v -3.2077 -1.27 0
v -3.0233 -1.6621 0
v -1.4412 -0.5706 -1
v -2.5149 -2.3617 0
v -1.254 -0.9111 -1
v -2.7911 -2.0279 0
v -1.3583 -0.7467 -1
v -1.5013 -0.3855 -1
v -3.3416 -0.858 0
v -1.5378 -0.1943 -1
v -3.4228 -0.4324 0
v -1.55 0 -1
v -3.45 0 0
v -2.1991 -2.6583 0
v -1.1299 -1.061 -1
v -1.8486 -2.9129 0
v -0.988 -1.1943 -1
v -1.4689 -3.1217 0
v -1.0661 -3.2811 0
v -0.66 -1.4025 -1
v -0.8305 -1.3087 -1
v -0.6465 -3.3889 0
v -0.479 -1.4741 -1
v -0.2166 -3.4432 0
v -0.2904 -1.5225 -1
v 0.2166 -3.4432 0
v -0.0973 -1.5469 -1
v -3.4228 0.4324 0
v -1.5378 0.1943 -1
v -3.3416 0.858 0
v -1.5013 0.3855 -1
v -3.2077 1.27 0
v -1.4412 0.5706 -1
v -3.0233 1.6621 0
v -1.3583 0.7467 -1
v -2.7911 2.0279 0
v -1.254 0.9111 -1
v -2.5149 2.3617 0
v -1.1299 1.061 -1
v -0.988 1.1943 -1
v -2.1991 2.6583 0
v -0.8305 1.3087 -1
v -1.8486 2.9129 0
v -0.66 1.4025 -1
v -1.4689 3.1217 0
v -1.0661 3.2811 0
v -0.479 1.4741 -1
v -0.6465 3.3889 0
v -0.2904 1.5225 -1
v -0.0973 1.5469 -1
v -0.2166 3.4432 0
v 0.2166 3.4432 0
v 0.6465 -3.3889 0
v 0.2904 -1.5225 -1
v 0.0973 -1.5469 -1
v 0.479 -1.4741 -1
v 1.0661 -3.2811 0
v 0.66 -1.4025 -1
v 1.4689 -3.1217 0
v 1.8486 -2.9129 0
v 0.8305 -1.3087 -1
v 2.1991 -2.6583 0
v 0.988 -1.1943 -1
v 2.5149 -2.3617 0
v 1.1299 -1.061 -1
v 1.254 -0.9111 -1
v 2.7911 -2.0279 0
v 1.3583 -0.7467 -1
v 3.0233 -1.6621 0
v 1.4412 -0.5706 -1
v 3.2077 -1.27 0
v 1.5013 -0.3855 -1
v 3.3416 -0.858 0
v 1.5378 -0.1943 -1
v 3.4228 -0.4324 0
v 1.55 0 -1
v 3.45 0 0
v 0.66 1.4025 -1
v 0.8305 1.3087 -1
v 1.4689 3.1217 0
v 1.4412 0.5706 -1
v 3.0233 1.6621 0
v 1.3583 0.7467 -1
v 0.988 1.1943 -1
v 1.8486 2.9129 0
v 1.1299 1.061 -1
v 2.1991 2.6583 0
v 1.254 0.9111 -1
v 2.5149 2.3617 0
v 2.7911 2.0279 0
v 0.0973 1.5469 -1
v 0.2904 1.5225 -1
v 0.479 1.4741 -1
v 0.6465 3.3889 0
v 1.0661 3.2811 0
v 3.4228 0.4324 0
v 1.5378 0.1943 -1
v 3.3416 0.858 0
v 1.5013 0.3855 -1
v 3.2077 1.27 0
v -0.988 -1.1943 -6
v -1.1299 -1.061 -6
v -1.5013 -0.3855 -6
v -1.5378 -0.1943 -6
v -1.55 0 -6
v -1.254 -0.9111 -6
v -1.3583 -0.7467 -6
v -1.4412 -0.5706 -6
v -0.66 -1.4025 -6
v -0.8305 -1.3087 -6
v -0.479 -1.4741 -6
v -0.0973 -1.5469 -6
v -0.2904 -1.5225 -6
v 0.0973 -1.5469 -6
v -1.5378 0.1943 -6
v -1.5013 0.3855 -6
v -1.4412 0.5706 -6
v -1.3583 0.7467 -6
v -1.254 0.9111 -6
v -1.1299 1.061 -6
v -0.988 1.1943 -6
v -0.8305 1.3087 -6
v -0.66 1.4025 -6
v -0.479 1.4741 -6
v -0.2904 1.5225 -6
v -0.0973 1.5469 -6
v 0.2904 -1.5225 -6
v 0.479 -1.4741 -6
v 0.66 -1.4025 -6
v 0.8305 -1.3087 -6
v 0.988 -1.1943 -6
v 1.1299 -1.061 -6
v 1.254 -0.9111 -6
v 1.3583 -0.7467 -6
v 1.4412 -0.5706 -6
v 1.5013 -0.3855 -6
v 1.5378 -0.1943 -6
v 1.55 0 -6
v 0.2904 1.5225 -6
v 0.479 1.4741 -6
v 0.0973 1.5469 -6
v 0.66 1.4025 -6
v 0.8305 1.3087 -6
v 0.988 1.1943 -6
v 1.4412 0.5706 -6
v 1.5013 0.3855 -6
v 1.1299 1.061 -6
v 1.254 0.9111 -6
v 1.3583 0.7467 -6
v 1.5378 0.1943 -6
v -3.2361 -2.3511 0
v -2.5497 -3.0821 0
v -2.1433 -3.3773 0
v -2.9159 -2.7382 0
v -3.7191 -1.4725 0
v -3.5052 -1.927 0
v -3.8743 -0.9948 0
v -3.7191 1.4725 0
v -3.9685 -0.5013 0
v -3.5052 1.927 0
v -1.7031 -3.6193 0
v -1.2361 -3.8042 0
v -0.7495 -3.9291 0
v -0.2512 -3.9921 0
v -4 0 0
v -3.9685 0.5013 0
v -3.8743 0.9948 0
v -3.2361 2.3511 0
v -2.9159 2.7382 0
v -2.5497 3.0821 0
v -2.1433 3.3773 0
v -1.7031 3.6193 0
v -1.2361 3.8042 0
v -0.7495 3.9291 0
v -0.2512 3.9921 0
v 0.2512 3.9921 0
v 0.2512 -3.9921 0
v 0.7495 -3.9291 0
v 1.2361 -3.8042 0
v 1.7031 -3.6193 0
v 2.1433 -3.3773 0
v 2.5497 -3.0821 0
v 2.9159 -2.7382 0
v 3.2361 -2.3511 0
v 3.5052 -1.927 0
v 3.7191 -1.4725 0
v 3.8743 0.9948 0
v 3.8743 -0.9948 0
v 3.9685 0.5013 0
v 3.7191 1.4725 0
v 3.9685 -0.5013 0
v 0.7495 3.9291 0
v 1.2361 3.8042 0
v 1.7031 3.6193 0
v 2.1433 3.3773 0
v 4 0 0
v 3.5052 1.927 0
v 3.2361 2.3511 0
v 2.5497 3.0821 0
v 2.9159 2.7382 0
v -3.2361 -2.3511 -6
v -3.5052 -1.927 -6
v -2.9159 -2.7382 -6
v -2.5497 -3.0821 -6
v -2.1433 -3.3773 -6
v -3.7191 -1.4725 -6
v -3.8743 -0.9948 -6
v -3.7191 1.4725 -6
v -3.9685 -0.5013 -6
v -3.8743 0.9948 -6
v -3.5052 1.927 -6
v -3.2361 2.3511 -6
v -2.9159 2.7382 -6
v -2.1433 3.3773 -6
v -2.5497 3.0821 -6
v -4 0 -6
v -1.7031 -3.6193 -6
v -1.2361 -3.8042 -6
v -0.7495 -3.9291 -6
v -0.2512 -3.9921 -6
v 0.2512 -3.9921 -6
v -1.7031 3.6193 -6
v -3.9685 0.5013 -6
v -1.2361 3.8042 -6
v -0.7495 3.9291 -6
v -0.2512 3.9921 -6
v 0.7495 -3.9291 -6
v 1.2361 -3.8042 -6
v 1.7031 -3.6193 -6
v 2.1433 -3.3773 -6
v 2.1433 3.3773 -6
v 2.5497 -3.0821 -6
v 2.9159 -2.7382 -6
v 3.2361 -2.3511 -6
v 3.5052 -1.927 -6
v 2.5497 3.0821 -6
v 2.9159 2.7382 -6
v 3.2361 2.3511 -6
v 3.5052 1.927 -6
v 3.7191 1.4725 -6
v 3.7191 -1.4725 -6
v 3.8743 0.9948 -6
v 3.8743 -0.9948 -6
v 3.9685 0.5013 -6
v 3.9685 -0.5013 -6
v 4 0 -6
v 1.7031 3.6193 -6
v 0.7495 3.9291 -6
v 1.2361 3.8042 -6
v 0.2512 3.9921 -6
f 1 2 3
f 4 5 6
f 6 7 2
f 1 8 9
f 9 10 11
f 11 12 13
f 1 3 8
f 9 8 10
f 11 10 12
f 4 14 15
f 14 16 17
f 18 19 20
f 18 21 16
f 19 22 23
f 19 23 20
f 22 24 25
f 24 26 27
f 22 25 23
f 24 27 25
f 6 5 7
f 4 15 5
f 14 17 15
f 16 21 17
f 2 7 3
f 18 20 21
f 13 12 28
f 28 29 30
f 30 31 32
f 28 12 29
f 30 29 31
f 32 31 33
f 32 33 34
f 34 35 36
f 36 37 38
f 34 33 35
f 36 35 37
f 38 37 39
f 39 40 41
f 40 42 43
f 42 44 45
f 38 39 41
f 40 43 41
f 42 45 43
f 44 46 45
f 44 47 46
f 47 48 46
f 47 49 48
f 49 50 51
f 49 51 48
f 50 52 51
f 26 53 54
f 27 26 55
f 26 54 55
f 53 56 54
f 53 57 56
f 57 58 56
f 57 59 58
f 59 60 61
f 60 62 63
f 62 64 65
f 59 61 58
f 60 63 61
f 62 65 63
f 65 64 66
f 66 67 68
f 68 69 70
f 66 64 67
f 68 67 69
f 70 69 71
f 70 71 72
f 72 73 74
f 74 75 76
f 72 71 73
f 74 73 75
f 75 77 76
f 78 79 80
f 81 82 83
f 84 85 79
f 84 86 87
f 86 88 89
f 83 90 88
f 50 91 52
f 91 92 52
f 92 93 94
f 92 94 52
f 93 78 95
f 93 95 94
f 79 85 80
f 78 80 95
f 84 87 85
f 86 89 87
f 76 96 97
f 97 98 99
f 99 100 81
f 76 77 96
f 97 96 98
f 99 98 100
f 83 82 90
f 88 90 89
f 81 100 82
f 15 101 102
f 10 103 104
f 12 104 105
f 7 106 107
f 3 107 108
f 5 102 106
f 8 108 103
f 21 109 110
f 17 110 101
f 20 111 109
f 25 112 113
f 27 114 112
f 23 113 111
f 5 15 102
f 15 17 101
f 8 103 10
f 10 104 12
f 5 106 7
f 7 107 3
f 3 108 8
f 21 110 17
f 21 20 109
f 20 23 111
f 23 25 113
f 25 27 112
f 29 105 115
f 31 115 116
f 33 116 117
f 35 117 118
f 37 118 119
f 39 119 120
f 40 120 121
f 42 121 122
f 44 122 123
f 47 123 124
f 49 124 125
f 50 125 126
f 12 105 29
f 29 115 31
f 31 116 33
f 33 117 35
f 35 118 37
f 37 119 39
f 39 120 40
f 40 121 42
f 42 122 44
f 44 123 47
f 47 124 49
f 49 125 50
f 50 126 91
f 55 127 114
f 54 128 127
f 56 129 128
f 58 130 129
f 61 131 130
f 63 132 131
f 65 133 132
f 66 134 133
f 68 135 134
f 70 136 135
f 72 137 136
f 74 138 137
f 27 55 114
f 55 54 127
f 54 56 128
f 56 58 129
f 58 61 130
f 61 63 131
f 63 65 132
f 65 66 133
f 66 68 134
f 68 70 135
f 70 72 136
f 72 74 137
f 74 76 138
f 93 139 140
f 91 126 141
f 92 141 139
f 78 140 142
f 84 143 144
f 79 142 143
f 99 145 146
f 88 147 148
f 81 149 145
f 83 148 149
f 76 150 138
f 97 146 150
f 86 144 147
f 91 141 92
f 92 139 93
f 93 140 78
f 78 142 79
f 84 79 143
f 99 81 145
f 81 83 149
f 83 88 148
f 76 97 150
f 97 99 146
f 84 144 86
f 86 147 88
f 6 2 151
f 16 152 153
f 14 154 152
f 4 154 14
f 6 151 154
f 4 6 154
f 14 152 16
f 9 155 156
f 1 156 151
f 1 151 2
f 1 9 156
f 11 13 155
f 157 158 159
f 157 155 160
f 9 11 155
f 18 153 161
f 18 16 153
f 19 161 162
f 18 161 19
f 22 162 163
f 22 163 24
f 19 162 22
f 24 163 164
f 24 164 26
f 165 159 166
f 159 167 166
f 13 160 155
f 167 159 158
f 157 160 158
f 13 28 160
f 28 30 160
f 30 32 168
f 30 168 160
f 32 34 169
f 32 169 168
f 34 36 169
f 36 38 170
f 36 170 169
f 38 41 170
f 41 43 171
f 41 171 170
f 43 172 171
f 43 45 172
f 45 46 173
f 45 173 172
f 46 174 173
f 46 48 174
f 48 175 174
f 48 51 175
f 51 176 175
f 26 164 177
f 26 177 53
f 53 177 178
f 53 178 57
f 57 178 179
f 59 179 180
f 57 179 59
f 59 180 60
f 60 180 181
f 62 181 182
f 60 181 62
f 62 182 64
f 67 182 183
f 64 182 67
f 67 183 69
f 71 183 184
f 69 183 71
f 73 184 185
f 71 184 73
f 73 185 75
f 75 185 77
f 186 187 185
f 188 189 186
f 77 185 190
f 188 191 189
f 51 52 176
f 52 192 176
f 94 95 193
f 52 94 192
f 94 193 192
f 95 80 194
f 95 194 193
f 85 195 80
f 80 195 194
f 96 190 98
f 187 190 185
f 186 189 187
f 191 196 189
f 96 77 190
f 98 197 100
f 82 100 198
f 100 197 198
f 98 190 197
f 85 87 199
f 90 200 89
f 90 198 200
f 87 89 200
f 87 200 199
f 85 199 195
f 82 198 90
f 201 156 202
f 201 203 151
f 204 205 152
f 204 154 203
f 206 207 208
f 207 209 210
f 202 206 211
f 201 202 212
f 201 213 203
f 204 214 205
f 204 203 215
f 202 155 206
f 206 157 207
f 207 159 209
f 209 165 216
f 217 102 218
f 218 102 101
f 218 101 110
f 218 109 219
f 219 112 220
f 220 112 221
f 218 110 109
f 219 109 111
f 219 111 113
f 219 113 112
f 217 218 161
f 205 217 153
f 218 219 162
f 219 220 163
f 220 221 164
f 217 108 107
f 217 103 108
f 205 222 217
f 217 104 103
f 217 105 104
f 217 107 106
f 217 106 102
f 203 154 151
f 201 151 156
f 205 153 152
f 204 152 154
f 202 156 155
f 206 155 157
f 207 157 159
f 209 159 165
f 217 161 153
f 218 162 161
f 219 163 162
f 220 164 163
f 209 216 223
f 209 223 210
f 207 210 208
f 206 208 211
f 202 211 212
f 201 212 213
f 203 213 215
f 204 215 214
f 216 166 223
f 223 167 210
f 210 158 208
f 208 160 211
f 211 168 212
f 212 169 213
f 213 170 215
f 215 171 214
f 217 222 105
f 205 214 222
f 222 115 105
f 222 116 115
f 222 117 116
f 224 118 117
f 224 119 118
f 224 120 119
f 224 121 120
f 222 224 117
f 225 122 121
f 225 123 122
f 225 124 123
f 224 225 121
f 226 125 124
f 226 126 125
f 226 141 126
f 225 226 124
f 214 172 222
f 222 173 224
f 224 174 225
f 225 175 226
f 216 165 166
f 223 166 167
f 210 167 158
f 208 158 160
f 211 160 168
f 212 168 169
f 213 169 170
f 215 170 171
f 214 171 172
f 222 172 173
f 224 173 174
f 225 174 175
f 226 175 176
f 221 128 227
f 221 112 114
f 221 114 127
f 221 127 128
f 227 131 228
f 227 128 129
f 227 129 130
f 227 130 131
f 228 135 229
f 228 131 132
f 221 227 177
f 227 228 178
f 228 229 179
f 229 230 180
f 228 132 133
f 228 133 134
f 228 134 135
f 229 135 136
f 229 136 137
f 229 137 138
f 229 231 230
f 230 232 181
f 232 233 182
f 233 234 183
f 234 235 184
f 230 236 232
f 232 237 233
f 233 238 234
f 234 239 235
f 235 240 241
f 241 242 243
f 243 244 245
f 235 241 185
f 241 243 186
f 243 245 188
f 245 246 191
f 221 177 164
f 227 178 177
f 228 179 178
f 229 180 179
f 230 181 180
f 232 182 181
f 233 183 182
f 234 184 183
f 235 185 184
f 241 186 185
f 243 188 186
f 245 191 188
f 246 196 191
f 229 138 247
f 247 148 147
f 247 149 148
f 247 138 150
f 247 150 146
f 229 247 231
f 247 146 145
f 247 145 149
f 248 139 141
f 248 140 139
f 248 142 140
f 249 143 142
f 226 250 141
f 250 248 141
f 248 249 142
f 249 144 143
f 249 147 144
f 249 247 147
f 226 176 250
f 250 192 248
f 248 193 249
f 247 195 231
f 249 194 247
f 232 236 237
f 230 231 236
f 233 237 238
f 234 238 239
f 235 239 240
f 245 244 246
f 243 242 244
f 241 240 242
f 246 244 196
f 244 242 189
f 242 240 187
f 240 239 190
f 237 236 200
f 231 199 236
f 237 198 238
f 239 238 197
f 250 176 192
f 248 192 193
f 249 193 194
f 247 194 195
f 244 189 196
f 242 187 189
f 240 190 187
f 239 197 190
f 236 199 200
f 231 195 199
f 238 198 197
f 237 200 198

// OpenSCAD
$fn = 50;

difference() {
	union() {
		translate(v = [0, 0, -6.0]) {
			cylinder(h = 9, r = 4.0);
		}
	}
	union() {
		translate(v = [0, 0, 0]) {
			rotate(a = [0, 0, 0]) {
				difference() {
					union() {
						translate(v = [0, 0, -9.0]) {
							cylinder(h = 9, r = 1.25);
						}
						translate(v = [0, 0, -1.0]) {
							cylinder(h = 1.0, r1 = 1.55, r2 = 3.45);
						}
						translate(v = [0, 0, -9.0]) {
							cylinder(h = 9, r = 1.55);
						}
						translate(v = [0, 0, -9.0]) {
							cylinder(h = 9, r = 1.25);
						}
					}
					union();
				}
			}
		}
		#cylinder(h = 3, r = 5.0);
	}
}
